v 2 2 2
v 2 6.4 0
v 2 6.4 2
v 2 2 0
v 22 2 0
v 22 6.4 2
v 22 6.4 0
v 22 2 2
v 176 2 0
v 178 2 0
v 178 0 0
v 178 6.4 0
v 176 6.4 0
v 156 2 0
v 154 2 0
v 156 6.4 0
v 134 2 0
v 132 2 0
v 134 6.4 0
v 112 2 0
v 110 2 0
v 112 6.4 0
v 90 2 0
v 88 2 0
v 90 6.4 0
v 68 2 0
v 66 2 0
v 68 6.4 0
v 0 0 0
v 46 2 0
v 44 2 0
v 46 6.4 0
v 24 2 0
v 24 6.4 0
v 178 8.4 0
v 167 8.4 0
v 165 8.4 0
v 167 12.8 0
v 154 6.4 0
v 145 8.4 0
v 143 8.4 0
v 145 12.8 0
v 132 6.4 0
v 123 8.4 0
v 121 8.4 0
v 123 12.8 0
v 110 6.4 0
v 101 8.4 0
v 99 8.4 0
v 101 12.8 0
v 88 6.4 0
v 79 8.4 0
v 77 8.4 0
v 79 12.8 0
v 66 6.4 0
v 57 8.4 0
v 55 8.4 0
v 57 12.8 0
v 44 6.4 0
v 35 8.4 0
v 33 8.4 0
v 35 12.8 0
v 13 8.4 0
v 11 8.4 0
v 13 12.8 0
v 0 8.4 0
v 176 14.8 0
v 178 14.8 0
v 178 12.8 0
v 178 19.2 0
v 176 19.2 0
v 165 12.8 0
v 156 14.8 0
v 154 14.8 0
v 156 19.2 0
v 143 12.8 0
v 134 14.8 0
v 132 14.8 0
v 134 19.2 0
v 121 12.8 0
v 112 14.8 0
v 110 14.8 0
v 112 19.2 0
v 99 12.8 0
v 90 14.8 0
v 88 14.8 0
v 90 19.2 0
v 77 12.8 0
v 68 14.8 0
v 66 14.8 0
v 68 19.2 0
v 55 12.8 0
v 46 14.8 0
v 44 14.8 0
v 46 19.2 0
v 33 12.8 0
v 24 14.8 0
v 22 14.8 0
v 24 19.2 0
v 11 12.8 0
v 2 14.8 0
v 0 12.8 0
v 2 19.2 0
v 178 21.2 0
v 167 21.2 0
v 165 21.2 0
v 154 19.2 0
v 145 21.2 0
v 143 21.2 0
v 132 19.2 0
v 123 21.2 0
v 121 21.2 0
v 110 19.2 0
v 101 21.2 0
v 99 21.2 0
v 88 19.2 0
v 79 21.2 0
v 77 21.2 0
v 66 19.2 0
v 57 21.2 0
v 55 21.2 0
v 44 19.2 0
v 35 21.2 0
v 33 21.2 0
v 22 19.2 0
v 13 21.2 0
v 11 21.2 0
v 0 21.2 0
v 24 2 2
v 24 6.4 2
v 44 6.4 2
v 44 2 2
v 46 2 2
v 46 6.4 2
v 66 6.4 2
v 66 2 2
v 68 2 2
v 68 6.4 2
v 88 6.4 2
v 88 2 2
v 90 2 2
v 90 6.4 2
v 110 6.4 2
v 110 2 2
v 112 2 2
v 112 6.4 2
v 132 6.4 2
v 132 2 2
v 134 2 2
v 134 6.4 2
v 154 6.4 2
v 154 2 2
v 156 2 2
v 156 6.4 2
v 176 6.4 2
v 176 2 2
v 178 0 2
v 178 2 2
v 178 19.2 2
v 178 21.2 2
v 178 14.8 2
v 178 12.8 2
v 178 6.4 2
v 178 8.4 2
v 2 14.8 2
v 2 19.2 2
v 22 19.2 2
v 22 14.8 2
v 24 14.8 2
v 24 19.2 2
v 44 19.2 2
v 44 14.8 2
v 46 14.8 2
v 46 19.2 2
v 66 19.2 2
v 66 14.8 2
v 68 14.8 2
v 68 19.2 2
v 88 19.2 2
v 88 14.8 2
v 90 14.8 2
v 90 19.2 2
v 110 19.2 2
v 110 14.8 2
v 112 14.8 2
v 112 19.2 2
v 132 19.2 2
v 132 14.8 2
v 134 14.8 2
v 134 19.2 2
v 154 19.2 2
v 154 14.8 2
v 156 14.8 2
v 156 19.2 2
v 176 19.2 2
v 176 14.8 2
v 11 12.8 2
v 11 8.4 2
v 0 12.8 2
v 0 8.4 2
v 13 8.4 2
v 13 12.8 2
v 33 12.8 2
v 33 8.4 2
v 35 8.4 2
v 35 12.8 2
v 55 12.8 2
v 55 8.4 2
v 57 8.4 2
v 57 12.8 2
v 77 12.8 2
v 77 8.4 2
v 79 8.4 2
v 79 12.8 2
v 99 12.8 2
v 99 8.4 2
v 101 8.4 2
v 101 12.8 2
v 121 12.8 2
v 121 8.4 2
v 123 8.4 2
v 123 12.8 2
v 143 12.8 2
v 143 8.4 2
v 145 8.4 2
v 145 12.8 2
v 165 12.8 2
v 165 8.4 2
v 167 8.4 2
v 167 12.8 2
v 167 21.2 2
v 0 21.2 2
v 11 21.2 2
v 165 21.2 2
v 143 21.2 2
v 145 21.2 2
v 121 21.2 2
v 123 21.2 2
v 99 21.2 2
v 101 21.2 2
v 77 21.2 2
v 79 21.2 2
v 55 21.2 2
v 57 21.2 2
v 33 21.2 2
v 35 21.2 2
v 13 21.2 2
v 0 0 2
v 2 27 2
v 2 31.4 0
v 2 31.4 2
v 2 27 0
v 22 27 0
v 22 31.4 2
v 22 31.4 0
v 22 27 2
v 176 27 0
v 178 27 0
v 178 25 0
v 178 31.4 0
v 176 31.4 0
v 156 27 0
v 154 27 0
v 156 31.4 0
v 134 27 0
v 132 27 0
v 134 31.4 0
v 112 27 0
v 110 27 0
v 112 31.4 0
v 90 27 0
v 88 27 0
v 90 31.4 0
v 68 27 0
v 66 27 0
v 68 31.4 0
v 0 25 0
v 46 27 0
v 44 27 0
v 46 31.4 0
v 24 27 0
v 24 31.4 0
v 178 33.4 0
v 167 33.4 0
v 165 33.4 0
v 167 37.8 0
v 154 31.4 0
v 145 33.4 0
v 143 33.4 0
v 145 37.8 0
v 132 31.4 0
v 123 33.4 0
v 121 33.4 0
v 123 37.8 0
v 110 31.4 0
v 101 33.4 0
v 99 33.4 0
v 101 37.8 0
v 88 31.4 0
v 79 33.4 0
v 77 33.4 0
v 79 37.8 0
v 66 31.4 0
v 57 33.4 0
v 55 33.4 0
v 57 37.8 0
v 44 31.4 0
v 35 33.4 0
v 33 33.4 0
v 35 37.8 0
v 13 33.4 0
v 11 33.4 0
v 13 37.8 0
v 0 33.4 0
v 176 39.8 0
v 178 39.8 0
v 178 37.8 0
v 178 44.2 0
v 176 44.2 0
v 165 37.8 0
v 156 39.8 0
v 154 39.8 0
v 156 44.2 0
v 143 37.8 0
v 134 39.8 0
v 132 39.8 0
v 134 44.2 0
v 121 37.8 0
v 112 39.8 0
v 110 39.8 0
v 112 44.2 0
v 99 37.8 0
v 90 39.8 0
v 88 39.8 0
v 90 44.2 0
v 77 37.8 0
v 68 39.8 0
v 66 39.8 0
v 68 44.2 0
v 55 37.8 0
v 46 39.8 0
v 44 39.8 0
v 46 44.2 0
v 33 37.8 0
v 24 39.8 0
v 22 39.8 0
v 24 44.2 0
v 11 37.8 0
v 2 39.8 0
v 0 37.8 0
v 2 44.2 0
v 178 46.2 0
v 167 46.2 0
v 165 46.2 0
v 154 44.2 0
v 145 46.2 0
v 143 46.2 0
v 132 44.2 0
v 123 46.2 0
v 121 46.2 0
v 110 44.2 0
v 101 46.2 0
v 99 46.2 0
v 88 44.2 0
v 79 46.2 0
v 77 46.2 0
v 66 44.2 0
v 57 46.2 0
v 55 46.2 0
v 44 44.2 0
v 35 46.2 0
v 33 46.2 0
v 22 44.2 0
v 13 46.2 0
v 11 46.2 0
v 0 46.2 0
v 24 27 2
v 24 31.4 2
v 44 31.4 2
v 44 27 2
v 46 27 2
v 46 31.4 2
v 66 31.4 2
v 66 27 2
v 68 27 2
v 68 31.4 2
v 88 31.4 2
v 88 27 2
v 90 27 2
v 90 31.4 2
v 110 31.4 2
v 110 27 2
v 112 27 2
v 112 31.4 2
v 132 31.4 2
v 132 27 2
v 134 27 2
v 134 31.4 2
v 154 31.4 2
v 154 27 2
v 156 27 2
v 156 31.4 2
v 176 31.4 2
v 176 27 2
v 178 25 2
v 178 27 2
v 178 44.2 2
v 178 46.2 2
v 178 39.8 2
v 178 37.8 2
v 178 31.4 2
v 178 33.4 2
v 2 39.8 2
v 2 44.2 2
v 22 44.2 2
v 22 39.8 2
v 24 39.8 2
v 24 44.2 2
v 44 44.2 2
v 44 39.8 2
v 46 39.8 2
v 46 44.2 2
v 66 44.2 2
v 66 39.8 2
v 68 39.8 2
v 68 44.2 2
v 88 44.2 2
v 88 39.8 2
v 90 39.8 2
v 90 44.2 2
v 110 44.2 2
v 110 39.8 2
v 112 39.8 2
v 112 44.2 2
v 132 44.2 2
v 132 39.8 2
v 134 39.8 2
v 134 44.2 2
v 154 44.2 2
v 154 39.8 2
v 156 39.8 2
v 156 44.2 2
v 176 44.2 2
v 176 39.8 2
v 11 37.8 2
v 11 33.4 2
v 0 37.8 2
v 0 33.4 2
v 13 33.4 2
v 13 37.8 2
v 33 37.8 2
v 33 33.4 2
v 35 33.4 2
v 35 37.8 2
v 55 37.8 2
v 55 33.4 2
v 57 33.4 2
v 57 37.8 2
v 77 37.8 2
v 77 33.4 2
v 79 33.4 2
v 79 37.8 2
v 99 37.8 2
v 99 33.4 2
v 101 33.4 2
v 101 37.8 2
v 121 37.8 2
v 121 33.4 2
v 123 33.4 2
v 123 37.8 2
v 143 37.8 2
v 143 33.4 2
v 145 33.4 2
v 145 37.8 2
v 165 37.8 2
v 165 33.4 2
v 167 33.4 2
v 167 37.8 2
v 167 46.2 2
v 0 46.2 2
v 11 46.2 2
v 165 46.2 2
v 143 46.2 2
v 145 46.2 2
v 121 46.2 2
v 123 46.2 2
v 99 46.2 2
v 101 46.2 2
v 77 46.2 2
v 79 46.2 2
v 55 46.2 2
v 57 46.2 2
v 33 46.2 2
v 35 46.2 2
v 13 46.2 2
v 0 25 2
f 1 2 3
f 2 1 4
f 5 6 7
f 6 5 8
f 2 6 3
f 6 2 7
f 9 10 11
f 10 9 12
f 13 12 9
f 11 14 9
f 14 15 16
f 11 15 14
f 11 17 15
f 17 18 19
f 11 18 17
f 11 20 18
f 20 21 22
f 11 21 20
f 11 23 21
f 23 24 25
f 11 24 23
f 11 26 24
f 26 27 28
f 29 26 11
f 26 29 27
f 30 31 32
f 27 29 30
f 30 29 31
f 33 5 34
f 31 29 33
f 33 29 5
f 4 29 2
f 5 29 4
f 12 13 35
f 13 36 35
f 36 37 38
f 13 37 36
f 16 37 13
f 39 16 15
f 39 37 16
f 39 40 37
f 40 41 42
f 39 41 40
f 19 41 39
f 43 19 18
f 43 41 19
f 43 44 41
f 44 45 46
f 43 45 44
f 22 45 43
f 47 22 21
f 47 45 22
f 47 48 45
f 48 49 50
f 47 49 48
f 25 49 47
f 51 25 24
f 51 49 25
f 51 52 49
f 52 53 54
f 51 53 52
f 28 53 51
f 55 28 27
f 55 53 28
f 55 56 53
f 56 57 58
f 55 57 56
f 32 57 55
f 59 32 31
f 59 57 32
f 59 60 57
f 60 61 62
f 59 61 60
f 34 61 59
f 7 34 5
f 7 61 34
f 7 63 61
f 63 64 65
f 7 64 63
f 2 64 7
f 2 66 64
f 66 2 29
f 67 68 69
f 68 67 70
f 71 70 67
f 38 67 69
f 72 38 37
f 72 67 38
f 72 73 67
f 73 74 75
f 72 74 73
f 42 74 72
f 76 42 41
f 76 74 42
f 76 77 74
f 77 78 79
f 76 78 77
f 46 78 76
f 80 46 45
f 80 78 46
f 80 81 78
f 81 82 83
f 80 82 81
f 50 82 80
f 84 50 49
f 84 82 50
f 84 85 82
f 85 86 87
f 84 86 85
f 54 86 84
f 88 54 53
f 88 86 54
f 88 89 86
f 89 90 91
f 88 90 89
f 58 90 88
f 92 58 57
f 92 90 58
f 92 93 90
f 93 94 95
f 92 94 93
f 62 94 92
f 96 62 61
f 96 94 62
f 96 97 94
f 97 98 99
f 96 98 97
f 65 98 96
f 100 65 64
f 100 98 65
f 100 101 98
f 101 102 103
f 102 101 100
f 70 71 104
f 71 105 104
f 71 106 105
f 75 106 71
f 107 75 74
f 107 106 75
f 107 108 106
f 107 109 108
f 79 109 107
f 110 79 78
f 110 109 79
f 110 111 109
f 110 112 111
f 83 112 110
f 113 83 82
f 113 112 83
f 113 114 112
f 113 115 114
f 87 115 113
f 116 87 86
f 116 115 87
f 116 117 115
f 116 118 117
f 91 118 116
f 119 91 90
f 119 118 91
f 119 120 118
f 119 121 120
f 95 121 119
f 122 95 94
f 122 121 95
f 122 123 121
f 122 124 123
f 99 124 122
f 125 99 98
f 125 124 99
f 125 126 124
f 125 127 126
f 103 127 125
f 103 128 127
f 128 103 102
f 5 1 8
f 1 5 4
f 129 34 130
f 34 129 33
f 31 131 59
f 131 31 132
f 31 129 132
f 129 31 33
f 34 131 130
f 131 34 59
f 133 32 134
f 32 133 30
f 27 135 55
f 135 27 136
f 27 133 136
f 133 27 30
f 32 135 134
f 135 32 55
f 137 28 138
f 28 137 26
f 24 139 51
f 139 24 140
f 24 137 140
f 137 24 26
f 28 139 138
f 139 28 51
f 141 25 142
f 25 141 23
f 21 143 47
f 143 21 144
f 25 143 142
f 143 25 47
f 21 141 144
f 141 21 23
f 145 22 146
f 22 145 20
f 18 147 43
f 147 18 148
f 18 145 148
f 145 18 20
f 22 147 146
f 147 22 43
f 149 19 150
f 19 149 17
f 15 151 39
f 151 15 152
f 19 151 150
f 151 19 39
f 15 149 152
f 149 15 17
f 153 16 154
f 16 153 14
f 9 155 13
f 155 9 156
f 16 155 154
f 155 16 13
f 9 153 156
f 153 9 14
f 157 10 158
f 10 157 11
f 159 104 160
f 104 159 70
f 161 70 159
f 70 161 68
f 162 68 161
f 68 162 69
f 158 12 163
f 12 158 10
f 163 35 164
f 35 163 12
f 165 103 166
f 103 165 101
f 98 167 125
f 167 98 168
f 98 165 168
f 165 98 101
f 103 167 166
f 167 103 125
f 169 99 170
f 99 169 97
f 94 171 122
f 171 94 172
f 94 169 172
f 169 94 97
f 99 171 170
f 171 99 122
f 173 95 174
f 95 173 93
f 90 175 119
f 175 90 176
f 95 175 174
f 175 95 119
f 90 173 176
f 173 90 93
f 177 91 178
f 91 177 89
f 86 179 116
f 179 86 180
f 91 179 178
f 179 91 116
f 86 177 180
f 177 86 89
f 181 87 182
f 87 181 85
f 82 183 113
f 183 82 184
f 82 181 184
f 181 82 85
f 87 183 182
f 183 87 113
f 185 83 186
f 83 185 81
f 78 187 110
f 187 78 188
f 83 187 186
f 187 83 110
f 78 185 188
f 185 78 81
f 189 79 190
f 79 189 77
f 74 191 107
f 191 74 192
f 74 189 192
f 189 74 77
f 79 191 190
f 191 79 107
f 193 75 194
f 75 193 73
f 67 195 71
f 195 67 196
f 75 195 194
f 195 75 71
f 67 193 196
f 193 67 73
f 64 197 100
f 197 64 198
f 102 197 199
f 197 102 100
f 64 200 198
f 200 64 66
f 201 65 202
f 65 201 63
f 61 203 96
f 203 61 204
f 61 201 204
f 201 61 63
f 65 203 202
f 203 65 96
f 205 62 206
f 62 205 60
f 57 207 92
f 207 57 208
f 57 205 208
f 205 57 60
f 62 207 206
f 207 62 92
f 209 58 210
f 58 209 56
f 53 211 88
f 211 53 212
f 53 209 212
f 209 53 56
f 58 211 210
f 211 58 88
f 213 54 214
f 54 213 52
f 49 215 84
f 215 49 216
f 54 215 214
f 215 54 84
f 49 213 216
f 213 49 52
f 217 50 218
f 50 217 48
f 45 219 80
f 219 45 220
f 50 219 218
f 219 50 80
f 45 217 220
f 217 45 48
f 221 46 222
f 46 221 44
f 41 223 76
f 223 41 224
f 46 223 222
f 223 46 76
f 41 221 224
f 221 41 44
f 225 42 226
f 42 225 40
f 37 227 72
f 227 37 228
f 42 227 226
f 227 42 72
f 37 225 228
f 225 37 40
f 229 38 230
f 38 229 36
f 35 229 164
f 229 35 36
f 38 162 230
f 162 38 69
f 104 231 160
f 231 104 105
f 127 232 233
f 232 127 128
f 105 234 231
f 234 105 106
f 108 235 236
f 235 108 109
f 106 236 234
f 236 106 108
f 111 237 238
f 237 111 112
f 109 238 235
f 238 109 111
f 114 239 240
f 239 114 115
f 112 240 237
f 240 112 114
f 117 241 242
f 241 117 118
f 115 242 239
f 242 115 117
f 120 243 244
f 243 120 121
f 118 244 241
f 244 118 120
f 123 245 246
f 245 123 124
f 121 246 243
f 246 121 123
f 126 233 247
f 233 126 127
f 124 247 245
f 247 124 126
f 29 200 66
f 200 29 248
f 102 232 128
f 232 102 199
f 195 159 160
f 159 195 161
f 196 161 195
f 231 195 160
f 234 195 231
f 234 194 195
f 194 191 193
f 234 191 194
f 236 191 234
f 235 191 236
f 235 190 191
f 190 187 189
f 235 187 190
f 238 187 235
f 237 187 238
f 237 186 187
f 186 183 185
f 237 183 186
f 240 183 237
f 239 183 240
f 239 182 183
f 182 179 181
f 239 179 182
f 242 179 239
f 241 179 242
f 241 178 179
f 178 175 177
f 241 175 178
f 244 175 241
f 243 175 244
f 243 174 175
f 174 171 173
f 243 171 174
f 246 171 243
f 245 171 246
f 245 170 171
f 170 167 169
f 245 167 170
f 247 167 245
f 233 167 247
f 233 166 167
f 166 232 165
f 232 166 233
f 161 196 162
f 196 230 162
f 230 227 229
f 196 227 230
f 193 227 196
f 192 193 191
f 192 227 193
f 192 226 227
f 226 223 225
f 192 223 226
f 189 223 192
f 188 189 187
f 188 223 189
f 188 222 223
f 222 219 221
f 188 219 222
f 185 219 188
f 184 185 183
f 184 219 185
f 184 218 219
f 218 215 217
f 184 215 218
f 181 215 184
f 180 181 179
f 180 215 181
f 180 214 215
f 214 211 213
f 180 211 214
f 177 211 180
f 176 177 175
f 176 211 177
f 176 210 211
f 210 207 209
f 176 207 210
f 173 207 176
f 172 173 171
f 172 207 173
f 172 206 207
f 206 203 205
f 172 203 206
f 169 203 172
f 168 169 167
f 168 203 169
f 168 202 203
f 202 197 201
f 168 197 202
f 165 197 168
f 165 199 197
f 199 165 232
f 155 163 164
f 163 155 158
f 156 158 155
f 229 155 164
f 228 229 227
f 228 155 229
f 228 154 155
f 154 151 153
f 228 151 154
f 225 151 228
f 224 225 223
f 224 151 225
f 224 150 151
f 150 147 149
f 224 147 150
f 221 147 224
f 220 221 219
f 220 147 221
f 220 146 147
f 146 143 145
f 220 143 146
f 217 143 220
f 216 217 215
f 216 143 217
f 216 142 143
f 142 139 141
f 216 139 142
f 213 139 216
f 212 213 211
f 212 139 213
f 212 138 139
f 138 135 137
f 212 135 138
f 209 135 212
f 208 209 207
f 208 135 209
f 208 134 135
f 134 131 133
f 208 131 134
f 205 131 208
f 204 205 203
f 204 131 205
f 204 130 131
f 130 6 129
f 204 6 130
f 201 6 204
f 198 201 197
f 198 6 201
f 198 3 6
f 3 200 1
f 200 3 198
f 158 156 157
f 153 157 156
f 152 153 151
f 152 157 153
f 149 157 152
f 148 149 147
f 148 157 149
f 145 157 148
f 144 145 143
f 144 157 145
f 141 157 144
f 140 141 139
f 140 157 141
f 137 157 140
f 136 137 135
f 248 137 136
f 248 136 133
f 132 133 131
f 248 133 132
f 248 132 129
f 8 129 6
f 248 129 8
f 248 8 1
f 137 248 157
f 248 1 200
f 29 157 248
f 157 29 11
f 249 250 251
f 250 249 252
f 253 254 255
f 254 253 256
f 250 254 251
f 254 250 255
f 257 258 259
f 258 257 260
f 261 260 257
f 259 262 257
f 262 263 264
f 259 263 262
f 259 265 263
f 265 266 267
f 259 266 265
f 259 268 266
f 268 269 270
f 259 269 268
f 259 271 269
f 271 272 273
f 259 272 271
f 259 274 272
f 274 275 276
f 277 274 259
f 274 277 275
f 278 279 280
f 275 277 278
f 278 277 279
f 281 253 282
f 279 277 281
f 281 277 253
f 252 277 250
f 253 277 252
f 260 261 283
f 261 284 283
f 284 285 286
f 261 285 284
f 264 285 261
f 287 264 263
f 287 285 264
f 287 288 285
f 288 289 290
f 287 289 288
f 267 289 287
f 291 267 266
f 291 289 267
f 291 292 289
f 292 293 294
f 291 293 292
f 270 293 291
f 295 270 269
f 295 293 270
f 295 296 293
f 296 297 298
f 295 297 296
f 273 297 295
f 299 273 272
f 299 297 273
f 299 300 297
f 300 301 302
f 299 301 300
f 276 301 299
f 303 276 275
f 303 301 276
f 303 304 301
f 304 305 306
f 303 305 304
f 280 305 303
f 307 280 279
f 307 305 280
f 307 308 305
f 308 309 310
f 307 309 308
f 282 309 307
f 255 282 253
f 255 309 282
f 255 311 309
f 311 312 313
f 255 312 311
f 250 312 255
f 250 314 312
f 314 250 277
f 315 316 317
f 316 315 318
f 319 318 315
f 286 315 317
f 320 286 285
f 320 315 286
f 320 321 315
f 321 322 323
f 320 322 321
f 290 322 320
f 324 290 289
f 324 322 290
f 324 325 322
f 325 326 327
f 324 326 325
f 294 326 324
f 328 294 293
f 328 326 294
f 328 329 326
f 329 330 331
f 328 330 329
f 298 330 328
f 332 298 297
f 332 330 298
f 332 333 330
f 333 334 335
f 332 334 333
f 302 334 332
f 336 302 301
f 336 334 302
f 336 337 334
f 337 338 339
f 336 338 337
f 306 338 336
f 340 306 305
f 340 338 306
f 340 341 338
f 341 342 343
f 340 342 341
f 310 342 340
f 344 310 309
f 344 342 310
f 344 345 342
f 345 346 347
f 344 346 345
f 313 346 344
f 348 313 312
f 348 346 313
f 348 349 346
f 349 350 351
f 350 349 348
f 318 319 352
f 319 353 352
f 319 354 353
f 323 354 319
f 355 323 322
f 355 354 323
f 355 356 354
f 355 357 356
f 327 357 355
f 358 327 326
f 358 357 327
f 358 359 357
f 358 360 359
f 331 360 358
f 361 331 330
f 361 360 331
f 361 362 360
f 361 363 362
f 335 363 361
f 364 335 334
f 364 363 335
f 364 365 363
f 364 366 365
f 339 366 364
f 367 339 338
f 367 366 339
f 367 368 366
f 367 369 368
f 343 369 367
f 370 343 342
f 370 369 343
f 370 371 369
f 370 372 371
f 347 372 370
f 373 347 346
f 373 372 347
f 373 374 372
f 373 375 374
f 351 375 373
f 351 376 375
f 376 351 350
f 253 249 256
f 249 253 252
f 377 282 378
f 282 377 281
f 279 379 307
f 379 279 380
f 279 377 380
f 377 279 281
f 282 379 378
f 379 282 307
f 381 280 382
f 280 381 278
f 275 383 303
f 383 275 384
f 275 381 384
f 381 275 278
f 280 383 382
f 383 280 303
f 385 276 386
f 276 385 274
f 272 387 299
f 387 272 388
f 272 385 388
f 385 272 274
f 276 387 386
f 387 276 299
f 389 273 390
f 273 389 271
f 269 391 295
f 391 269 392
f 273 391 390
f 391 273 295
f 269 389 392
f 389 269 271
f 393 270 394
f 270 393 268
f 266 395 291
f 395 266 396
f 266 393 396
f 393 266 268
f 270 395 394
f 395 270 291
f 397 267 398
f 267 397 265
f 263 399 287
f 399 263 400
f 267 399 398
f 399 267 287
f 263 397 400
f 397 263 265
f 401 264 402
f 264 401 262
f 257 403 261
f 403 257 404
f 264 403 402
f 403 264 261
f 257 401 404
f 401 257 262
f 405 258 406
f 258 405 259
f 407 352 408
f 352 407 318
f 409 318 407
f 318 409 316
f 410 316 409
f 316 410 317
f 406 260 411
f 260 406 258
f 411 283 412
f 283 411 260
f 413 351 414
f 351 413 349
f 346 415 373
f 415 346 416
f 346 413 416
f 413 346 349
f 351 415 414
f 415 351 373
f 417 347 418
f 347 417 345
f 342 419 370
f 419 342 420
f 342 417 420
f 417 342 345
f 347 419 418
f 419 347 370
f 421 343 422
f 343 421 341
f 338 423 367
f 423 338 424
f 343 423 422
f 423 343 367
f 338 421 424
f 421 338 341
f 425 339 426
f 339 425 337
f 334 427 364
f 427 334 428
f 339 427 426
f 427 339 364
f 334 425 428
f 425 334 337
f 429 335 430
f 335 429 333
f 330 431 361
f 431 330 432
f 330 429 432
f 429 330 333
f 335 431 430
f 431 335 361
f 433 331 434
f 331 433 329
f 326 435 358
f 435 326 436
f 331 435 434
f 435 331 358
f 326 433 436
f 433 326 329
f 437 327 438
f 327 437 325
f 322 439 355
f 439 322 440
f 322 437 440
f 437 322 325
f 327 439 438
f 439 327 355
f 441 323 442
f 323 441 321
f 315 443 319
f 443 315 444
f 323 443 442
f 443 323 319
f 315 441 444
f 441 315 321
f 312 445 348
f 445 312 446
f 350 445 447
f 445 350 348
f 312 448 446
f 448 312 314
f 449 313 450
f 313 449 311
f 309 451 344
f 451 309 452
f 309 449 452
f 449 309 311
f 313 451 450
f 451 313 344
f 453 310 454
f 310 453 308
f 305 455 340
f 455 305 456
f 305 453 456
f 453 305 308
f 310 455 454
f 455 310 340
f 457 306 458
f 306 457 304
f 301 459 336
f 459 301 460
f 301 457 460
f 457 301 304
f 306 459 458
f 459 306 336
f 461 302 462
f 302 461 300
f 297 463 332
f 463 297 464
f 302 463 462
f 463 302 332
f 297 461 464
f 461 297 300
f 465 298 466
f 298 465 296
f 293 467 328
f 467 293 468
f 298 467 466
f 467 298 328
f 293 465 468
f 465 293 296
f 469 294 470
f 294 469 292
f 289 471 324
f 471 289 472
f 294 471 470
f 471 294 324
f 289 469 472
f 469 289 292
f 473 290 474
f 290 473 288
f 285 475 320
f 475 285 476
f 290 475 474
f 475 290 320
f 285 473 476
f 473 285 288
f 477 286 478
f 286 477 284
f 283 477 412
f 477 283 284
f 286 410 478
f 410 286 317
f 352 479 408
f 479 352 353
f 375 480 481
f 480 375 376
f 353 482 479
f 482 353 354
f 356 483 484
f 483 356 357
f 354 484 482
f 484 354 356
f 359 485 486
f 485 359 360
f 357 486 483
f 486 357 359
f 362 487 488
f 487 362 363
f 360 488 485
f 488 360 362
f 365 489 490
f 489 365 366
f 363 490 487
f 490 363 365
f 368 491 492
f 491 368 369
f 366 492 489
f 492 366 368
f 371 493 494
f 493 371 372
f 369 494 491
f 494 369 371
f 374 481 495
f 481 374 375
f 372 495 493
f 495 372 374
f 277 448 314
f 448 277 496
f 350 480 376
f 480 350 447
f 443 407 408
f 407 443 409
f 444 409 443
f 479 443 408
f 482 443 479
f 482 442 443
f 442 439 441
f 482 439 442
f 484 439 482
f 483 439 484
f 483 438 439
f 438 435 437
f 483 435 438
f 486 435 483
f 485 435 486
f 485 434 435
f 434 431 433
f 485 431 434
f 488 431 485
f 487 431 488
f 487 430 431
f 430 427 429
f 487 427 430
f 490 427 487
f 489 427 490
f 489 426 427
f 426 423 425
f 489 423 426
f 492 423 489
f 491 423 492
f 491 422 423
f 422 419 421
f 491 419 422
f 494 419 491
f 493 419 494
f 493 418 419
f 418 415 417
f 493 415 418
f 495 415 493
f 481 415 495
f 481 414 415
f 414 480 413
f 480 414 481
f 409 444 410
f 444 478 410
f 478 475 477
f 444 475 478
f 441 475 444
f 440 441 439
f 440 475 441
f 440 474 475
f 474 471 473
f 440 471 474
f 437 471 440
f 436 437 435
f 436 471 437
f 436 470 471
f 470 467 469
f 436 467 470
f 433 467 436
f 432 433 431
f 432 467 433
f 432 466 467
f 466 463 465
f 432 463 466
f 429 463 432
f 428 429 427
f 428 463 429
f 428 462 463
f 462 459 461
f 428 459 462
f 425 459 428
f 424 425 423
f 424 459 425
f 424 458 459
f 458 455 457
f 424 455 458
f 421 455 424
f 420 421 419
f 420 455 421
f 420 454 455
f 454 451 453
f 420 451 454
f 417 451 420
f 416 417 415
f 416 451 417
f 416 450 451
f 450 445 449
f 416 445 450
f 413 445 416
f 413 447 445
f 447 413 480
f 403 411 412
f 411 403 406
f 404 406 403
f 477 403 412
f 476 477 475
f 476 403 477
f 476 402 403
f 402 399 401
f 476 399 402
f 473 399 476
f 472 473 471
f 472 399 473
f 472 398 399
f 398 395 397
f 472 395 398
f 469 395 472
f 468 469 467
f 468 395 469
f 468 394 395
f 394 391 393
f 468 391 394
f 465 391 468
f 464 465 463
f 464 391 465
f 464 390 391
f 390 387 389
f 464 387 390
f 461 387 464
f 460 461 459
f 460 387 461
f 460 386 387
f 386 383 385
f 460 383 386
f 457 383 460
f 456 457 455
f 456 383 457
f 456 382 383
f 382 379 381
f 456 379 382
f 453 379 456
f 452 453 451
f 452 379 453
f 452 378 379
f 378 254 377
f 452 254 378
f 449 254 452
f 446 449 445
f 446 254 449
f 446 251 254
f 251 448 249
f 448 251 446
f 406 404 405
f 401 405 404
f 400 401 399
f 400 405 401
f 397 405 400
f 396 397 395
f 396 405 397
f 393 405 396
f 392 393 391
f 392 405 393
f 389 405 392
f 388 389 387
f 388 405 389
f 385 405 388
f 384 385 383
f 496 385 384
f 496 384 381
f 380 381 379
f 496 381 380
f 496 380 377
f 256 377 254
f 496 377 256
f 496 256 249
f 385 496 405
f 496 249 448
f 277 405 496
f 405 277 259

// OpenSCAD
// An excluder that goes over the entrance to a bee hive that prevents a queen leaving (or entering, I guess?)
// Useful for a capturing a swarm, as the rest of the bees won't leave without their queen.
// Printed in two parts to fit on my 200x200 bed. The height of the excluder is set in order
// to have three rows of slots, not by how high my entrance actually is. Don't @ me.
// On my printer, with a reasonably well-calibrated Z height, I can confirm that worker bees
// can pass through the grid.

slot_x = 20;
slot_y = 4.4; // Theoretically too small for a queen to get through, but big enough for a worker.
wt = 2;

entrance_z = 4*wt+3*slot_y;
// entrance_z = 21.5; // Reality
echo(entrance_z); // Echoed
// entrance_x = 356; // Actual width of the entrance
entrance_x = 356/2; // Halved so it fits on my bed.

module holes() {
    for ( j = [0 : slot_y+wt : entrance_z] ) {
        for ( i = [0 : slot_x+wt : entrance_x] ) {
            if (((j/(slot_y+wt)) % 2) == 0) {
                translate([i+wt,j+wt,0]) cube([slot_x, slot_y, 100]);
            } else {
                translate([i-(slot_x+wt)/2+wt,j+wt,0]) cube([slot_x, slot_y, 100]);
            }
        }
    }
}

module excluder() {
    difference() {
        cube([entrance_x, entrance_z, wt]);
        holes();
    }
}

excluder();
translate([0,25,0]) excluder();
